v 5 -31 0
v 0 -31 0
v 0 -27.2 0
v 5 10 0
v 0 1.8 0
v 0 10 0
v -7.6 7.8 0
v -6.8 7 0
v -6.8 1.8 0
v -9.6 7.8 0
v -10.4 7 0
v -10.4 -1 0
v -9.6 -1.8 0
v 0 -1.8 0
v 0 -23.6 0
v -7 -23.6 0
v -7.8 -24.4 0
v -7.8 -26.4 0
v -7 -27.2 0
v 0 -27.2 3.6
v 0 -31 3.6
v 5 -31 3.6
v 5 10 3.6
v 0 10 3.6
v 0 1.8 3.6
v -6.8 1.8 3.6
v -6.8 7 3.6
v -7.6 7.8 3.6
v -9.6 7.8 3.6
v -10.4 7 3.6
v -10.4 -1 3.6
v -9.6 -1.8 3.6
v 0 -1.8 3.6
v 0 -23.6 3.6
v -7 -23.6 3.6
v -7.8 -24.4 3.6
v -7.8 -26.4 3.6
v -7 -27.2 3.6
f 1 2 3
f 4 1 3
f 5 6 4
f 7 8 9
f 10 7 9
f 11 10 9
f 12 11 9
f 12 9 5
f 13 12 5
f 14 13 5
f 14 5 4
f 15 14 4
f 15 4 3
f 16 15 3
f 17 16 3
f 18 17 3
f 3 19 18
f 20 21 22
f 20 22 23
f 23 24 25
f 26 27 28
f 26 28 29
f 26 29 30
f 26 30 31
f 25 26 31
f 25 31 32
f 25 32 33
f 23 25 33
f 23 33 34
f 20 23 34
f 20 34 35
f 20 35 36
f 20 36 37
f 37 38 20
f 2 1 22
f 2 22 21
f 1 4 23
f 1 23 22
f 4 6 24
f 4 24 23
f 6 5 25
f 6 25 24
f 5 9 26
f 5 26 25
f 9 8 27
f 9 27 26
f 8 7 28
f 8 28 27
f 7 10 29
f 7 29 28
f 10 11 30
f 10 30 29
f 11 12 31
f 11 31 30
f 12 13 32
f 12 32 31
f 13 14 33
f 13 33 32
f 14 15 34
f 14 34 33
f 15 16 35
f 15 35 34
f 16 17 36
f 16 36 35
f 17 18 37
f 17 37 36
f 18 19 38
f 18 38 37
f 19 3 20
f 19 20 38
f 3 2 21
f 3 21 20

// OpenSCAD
// Fit coupon only, not a rated hanger. Side-down print orientation.
// Intended board thickness 6.4 mm; gap includes 0.4 mm clearance.
linear_extrude(height=3.6) polygon(points=[[0, -31], [5, -31], [5, 10], [0, 10], [0, 1.8], [-6.800000000000001, 1.8], [-6.800000000000001, 7.0], [-7.6000000000000005, 7.8], [-9.6, 7.8], [-10.4, 7.0], [-10.4, -1.0], [-9.6, -1.8], [0, -1.8], [0, -23.6], [-7.000000000000001, -23.6], [-7.800000000000001, -24.4], [-7.800000000000001, -26.4], [-7.000000000000001, -27.2], [0, -27.2]]);
